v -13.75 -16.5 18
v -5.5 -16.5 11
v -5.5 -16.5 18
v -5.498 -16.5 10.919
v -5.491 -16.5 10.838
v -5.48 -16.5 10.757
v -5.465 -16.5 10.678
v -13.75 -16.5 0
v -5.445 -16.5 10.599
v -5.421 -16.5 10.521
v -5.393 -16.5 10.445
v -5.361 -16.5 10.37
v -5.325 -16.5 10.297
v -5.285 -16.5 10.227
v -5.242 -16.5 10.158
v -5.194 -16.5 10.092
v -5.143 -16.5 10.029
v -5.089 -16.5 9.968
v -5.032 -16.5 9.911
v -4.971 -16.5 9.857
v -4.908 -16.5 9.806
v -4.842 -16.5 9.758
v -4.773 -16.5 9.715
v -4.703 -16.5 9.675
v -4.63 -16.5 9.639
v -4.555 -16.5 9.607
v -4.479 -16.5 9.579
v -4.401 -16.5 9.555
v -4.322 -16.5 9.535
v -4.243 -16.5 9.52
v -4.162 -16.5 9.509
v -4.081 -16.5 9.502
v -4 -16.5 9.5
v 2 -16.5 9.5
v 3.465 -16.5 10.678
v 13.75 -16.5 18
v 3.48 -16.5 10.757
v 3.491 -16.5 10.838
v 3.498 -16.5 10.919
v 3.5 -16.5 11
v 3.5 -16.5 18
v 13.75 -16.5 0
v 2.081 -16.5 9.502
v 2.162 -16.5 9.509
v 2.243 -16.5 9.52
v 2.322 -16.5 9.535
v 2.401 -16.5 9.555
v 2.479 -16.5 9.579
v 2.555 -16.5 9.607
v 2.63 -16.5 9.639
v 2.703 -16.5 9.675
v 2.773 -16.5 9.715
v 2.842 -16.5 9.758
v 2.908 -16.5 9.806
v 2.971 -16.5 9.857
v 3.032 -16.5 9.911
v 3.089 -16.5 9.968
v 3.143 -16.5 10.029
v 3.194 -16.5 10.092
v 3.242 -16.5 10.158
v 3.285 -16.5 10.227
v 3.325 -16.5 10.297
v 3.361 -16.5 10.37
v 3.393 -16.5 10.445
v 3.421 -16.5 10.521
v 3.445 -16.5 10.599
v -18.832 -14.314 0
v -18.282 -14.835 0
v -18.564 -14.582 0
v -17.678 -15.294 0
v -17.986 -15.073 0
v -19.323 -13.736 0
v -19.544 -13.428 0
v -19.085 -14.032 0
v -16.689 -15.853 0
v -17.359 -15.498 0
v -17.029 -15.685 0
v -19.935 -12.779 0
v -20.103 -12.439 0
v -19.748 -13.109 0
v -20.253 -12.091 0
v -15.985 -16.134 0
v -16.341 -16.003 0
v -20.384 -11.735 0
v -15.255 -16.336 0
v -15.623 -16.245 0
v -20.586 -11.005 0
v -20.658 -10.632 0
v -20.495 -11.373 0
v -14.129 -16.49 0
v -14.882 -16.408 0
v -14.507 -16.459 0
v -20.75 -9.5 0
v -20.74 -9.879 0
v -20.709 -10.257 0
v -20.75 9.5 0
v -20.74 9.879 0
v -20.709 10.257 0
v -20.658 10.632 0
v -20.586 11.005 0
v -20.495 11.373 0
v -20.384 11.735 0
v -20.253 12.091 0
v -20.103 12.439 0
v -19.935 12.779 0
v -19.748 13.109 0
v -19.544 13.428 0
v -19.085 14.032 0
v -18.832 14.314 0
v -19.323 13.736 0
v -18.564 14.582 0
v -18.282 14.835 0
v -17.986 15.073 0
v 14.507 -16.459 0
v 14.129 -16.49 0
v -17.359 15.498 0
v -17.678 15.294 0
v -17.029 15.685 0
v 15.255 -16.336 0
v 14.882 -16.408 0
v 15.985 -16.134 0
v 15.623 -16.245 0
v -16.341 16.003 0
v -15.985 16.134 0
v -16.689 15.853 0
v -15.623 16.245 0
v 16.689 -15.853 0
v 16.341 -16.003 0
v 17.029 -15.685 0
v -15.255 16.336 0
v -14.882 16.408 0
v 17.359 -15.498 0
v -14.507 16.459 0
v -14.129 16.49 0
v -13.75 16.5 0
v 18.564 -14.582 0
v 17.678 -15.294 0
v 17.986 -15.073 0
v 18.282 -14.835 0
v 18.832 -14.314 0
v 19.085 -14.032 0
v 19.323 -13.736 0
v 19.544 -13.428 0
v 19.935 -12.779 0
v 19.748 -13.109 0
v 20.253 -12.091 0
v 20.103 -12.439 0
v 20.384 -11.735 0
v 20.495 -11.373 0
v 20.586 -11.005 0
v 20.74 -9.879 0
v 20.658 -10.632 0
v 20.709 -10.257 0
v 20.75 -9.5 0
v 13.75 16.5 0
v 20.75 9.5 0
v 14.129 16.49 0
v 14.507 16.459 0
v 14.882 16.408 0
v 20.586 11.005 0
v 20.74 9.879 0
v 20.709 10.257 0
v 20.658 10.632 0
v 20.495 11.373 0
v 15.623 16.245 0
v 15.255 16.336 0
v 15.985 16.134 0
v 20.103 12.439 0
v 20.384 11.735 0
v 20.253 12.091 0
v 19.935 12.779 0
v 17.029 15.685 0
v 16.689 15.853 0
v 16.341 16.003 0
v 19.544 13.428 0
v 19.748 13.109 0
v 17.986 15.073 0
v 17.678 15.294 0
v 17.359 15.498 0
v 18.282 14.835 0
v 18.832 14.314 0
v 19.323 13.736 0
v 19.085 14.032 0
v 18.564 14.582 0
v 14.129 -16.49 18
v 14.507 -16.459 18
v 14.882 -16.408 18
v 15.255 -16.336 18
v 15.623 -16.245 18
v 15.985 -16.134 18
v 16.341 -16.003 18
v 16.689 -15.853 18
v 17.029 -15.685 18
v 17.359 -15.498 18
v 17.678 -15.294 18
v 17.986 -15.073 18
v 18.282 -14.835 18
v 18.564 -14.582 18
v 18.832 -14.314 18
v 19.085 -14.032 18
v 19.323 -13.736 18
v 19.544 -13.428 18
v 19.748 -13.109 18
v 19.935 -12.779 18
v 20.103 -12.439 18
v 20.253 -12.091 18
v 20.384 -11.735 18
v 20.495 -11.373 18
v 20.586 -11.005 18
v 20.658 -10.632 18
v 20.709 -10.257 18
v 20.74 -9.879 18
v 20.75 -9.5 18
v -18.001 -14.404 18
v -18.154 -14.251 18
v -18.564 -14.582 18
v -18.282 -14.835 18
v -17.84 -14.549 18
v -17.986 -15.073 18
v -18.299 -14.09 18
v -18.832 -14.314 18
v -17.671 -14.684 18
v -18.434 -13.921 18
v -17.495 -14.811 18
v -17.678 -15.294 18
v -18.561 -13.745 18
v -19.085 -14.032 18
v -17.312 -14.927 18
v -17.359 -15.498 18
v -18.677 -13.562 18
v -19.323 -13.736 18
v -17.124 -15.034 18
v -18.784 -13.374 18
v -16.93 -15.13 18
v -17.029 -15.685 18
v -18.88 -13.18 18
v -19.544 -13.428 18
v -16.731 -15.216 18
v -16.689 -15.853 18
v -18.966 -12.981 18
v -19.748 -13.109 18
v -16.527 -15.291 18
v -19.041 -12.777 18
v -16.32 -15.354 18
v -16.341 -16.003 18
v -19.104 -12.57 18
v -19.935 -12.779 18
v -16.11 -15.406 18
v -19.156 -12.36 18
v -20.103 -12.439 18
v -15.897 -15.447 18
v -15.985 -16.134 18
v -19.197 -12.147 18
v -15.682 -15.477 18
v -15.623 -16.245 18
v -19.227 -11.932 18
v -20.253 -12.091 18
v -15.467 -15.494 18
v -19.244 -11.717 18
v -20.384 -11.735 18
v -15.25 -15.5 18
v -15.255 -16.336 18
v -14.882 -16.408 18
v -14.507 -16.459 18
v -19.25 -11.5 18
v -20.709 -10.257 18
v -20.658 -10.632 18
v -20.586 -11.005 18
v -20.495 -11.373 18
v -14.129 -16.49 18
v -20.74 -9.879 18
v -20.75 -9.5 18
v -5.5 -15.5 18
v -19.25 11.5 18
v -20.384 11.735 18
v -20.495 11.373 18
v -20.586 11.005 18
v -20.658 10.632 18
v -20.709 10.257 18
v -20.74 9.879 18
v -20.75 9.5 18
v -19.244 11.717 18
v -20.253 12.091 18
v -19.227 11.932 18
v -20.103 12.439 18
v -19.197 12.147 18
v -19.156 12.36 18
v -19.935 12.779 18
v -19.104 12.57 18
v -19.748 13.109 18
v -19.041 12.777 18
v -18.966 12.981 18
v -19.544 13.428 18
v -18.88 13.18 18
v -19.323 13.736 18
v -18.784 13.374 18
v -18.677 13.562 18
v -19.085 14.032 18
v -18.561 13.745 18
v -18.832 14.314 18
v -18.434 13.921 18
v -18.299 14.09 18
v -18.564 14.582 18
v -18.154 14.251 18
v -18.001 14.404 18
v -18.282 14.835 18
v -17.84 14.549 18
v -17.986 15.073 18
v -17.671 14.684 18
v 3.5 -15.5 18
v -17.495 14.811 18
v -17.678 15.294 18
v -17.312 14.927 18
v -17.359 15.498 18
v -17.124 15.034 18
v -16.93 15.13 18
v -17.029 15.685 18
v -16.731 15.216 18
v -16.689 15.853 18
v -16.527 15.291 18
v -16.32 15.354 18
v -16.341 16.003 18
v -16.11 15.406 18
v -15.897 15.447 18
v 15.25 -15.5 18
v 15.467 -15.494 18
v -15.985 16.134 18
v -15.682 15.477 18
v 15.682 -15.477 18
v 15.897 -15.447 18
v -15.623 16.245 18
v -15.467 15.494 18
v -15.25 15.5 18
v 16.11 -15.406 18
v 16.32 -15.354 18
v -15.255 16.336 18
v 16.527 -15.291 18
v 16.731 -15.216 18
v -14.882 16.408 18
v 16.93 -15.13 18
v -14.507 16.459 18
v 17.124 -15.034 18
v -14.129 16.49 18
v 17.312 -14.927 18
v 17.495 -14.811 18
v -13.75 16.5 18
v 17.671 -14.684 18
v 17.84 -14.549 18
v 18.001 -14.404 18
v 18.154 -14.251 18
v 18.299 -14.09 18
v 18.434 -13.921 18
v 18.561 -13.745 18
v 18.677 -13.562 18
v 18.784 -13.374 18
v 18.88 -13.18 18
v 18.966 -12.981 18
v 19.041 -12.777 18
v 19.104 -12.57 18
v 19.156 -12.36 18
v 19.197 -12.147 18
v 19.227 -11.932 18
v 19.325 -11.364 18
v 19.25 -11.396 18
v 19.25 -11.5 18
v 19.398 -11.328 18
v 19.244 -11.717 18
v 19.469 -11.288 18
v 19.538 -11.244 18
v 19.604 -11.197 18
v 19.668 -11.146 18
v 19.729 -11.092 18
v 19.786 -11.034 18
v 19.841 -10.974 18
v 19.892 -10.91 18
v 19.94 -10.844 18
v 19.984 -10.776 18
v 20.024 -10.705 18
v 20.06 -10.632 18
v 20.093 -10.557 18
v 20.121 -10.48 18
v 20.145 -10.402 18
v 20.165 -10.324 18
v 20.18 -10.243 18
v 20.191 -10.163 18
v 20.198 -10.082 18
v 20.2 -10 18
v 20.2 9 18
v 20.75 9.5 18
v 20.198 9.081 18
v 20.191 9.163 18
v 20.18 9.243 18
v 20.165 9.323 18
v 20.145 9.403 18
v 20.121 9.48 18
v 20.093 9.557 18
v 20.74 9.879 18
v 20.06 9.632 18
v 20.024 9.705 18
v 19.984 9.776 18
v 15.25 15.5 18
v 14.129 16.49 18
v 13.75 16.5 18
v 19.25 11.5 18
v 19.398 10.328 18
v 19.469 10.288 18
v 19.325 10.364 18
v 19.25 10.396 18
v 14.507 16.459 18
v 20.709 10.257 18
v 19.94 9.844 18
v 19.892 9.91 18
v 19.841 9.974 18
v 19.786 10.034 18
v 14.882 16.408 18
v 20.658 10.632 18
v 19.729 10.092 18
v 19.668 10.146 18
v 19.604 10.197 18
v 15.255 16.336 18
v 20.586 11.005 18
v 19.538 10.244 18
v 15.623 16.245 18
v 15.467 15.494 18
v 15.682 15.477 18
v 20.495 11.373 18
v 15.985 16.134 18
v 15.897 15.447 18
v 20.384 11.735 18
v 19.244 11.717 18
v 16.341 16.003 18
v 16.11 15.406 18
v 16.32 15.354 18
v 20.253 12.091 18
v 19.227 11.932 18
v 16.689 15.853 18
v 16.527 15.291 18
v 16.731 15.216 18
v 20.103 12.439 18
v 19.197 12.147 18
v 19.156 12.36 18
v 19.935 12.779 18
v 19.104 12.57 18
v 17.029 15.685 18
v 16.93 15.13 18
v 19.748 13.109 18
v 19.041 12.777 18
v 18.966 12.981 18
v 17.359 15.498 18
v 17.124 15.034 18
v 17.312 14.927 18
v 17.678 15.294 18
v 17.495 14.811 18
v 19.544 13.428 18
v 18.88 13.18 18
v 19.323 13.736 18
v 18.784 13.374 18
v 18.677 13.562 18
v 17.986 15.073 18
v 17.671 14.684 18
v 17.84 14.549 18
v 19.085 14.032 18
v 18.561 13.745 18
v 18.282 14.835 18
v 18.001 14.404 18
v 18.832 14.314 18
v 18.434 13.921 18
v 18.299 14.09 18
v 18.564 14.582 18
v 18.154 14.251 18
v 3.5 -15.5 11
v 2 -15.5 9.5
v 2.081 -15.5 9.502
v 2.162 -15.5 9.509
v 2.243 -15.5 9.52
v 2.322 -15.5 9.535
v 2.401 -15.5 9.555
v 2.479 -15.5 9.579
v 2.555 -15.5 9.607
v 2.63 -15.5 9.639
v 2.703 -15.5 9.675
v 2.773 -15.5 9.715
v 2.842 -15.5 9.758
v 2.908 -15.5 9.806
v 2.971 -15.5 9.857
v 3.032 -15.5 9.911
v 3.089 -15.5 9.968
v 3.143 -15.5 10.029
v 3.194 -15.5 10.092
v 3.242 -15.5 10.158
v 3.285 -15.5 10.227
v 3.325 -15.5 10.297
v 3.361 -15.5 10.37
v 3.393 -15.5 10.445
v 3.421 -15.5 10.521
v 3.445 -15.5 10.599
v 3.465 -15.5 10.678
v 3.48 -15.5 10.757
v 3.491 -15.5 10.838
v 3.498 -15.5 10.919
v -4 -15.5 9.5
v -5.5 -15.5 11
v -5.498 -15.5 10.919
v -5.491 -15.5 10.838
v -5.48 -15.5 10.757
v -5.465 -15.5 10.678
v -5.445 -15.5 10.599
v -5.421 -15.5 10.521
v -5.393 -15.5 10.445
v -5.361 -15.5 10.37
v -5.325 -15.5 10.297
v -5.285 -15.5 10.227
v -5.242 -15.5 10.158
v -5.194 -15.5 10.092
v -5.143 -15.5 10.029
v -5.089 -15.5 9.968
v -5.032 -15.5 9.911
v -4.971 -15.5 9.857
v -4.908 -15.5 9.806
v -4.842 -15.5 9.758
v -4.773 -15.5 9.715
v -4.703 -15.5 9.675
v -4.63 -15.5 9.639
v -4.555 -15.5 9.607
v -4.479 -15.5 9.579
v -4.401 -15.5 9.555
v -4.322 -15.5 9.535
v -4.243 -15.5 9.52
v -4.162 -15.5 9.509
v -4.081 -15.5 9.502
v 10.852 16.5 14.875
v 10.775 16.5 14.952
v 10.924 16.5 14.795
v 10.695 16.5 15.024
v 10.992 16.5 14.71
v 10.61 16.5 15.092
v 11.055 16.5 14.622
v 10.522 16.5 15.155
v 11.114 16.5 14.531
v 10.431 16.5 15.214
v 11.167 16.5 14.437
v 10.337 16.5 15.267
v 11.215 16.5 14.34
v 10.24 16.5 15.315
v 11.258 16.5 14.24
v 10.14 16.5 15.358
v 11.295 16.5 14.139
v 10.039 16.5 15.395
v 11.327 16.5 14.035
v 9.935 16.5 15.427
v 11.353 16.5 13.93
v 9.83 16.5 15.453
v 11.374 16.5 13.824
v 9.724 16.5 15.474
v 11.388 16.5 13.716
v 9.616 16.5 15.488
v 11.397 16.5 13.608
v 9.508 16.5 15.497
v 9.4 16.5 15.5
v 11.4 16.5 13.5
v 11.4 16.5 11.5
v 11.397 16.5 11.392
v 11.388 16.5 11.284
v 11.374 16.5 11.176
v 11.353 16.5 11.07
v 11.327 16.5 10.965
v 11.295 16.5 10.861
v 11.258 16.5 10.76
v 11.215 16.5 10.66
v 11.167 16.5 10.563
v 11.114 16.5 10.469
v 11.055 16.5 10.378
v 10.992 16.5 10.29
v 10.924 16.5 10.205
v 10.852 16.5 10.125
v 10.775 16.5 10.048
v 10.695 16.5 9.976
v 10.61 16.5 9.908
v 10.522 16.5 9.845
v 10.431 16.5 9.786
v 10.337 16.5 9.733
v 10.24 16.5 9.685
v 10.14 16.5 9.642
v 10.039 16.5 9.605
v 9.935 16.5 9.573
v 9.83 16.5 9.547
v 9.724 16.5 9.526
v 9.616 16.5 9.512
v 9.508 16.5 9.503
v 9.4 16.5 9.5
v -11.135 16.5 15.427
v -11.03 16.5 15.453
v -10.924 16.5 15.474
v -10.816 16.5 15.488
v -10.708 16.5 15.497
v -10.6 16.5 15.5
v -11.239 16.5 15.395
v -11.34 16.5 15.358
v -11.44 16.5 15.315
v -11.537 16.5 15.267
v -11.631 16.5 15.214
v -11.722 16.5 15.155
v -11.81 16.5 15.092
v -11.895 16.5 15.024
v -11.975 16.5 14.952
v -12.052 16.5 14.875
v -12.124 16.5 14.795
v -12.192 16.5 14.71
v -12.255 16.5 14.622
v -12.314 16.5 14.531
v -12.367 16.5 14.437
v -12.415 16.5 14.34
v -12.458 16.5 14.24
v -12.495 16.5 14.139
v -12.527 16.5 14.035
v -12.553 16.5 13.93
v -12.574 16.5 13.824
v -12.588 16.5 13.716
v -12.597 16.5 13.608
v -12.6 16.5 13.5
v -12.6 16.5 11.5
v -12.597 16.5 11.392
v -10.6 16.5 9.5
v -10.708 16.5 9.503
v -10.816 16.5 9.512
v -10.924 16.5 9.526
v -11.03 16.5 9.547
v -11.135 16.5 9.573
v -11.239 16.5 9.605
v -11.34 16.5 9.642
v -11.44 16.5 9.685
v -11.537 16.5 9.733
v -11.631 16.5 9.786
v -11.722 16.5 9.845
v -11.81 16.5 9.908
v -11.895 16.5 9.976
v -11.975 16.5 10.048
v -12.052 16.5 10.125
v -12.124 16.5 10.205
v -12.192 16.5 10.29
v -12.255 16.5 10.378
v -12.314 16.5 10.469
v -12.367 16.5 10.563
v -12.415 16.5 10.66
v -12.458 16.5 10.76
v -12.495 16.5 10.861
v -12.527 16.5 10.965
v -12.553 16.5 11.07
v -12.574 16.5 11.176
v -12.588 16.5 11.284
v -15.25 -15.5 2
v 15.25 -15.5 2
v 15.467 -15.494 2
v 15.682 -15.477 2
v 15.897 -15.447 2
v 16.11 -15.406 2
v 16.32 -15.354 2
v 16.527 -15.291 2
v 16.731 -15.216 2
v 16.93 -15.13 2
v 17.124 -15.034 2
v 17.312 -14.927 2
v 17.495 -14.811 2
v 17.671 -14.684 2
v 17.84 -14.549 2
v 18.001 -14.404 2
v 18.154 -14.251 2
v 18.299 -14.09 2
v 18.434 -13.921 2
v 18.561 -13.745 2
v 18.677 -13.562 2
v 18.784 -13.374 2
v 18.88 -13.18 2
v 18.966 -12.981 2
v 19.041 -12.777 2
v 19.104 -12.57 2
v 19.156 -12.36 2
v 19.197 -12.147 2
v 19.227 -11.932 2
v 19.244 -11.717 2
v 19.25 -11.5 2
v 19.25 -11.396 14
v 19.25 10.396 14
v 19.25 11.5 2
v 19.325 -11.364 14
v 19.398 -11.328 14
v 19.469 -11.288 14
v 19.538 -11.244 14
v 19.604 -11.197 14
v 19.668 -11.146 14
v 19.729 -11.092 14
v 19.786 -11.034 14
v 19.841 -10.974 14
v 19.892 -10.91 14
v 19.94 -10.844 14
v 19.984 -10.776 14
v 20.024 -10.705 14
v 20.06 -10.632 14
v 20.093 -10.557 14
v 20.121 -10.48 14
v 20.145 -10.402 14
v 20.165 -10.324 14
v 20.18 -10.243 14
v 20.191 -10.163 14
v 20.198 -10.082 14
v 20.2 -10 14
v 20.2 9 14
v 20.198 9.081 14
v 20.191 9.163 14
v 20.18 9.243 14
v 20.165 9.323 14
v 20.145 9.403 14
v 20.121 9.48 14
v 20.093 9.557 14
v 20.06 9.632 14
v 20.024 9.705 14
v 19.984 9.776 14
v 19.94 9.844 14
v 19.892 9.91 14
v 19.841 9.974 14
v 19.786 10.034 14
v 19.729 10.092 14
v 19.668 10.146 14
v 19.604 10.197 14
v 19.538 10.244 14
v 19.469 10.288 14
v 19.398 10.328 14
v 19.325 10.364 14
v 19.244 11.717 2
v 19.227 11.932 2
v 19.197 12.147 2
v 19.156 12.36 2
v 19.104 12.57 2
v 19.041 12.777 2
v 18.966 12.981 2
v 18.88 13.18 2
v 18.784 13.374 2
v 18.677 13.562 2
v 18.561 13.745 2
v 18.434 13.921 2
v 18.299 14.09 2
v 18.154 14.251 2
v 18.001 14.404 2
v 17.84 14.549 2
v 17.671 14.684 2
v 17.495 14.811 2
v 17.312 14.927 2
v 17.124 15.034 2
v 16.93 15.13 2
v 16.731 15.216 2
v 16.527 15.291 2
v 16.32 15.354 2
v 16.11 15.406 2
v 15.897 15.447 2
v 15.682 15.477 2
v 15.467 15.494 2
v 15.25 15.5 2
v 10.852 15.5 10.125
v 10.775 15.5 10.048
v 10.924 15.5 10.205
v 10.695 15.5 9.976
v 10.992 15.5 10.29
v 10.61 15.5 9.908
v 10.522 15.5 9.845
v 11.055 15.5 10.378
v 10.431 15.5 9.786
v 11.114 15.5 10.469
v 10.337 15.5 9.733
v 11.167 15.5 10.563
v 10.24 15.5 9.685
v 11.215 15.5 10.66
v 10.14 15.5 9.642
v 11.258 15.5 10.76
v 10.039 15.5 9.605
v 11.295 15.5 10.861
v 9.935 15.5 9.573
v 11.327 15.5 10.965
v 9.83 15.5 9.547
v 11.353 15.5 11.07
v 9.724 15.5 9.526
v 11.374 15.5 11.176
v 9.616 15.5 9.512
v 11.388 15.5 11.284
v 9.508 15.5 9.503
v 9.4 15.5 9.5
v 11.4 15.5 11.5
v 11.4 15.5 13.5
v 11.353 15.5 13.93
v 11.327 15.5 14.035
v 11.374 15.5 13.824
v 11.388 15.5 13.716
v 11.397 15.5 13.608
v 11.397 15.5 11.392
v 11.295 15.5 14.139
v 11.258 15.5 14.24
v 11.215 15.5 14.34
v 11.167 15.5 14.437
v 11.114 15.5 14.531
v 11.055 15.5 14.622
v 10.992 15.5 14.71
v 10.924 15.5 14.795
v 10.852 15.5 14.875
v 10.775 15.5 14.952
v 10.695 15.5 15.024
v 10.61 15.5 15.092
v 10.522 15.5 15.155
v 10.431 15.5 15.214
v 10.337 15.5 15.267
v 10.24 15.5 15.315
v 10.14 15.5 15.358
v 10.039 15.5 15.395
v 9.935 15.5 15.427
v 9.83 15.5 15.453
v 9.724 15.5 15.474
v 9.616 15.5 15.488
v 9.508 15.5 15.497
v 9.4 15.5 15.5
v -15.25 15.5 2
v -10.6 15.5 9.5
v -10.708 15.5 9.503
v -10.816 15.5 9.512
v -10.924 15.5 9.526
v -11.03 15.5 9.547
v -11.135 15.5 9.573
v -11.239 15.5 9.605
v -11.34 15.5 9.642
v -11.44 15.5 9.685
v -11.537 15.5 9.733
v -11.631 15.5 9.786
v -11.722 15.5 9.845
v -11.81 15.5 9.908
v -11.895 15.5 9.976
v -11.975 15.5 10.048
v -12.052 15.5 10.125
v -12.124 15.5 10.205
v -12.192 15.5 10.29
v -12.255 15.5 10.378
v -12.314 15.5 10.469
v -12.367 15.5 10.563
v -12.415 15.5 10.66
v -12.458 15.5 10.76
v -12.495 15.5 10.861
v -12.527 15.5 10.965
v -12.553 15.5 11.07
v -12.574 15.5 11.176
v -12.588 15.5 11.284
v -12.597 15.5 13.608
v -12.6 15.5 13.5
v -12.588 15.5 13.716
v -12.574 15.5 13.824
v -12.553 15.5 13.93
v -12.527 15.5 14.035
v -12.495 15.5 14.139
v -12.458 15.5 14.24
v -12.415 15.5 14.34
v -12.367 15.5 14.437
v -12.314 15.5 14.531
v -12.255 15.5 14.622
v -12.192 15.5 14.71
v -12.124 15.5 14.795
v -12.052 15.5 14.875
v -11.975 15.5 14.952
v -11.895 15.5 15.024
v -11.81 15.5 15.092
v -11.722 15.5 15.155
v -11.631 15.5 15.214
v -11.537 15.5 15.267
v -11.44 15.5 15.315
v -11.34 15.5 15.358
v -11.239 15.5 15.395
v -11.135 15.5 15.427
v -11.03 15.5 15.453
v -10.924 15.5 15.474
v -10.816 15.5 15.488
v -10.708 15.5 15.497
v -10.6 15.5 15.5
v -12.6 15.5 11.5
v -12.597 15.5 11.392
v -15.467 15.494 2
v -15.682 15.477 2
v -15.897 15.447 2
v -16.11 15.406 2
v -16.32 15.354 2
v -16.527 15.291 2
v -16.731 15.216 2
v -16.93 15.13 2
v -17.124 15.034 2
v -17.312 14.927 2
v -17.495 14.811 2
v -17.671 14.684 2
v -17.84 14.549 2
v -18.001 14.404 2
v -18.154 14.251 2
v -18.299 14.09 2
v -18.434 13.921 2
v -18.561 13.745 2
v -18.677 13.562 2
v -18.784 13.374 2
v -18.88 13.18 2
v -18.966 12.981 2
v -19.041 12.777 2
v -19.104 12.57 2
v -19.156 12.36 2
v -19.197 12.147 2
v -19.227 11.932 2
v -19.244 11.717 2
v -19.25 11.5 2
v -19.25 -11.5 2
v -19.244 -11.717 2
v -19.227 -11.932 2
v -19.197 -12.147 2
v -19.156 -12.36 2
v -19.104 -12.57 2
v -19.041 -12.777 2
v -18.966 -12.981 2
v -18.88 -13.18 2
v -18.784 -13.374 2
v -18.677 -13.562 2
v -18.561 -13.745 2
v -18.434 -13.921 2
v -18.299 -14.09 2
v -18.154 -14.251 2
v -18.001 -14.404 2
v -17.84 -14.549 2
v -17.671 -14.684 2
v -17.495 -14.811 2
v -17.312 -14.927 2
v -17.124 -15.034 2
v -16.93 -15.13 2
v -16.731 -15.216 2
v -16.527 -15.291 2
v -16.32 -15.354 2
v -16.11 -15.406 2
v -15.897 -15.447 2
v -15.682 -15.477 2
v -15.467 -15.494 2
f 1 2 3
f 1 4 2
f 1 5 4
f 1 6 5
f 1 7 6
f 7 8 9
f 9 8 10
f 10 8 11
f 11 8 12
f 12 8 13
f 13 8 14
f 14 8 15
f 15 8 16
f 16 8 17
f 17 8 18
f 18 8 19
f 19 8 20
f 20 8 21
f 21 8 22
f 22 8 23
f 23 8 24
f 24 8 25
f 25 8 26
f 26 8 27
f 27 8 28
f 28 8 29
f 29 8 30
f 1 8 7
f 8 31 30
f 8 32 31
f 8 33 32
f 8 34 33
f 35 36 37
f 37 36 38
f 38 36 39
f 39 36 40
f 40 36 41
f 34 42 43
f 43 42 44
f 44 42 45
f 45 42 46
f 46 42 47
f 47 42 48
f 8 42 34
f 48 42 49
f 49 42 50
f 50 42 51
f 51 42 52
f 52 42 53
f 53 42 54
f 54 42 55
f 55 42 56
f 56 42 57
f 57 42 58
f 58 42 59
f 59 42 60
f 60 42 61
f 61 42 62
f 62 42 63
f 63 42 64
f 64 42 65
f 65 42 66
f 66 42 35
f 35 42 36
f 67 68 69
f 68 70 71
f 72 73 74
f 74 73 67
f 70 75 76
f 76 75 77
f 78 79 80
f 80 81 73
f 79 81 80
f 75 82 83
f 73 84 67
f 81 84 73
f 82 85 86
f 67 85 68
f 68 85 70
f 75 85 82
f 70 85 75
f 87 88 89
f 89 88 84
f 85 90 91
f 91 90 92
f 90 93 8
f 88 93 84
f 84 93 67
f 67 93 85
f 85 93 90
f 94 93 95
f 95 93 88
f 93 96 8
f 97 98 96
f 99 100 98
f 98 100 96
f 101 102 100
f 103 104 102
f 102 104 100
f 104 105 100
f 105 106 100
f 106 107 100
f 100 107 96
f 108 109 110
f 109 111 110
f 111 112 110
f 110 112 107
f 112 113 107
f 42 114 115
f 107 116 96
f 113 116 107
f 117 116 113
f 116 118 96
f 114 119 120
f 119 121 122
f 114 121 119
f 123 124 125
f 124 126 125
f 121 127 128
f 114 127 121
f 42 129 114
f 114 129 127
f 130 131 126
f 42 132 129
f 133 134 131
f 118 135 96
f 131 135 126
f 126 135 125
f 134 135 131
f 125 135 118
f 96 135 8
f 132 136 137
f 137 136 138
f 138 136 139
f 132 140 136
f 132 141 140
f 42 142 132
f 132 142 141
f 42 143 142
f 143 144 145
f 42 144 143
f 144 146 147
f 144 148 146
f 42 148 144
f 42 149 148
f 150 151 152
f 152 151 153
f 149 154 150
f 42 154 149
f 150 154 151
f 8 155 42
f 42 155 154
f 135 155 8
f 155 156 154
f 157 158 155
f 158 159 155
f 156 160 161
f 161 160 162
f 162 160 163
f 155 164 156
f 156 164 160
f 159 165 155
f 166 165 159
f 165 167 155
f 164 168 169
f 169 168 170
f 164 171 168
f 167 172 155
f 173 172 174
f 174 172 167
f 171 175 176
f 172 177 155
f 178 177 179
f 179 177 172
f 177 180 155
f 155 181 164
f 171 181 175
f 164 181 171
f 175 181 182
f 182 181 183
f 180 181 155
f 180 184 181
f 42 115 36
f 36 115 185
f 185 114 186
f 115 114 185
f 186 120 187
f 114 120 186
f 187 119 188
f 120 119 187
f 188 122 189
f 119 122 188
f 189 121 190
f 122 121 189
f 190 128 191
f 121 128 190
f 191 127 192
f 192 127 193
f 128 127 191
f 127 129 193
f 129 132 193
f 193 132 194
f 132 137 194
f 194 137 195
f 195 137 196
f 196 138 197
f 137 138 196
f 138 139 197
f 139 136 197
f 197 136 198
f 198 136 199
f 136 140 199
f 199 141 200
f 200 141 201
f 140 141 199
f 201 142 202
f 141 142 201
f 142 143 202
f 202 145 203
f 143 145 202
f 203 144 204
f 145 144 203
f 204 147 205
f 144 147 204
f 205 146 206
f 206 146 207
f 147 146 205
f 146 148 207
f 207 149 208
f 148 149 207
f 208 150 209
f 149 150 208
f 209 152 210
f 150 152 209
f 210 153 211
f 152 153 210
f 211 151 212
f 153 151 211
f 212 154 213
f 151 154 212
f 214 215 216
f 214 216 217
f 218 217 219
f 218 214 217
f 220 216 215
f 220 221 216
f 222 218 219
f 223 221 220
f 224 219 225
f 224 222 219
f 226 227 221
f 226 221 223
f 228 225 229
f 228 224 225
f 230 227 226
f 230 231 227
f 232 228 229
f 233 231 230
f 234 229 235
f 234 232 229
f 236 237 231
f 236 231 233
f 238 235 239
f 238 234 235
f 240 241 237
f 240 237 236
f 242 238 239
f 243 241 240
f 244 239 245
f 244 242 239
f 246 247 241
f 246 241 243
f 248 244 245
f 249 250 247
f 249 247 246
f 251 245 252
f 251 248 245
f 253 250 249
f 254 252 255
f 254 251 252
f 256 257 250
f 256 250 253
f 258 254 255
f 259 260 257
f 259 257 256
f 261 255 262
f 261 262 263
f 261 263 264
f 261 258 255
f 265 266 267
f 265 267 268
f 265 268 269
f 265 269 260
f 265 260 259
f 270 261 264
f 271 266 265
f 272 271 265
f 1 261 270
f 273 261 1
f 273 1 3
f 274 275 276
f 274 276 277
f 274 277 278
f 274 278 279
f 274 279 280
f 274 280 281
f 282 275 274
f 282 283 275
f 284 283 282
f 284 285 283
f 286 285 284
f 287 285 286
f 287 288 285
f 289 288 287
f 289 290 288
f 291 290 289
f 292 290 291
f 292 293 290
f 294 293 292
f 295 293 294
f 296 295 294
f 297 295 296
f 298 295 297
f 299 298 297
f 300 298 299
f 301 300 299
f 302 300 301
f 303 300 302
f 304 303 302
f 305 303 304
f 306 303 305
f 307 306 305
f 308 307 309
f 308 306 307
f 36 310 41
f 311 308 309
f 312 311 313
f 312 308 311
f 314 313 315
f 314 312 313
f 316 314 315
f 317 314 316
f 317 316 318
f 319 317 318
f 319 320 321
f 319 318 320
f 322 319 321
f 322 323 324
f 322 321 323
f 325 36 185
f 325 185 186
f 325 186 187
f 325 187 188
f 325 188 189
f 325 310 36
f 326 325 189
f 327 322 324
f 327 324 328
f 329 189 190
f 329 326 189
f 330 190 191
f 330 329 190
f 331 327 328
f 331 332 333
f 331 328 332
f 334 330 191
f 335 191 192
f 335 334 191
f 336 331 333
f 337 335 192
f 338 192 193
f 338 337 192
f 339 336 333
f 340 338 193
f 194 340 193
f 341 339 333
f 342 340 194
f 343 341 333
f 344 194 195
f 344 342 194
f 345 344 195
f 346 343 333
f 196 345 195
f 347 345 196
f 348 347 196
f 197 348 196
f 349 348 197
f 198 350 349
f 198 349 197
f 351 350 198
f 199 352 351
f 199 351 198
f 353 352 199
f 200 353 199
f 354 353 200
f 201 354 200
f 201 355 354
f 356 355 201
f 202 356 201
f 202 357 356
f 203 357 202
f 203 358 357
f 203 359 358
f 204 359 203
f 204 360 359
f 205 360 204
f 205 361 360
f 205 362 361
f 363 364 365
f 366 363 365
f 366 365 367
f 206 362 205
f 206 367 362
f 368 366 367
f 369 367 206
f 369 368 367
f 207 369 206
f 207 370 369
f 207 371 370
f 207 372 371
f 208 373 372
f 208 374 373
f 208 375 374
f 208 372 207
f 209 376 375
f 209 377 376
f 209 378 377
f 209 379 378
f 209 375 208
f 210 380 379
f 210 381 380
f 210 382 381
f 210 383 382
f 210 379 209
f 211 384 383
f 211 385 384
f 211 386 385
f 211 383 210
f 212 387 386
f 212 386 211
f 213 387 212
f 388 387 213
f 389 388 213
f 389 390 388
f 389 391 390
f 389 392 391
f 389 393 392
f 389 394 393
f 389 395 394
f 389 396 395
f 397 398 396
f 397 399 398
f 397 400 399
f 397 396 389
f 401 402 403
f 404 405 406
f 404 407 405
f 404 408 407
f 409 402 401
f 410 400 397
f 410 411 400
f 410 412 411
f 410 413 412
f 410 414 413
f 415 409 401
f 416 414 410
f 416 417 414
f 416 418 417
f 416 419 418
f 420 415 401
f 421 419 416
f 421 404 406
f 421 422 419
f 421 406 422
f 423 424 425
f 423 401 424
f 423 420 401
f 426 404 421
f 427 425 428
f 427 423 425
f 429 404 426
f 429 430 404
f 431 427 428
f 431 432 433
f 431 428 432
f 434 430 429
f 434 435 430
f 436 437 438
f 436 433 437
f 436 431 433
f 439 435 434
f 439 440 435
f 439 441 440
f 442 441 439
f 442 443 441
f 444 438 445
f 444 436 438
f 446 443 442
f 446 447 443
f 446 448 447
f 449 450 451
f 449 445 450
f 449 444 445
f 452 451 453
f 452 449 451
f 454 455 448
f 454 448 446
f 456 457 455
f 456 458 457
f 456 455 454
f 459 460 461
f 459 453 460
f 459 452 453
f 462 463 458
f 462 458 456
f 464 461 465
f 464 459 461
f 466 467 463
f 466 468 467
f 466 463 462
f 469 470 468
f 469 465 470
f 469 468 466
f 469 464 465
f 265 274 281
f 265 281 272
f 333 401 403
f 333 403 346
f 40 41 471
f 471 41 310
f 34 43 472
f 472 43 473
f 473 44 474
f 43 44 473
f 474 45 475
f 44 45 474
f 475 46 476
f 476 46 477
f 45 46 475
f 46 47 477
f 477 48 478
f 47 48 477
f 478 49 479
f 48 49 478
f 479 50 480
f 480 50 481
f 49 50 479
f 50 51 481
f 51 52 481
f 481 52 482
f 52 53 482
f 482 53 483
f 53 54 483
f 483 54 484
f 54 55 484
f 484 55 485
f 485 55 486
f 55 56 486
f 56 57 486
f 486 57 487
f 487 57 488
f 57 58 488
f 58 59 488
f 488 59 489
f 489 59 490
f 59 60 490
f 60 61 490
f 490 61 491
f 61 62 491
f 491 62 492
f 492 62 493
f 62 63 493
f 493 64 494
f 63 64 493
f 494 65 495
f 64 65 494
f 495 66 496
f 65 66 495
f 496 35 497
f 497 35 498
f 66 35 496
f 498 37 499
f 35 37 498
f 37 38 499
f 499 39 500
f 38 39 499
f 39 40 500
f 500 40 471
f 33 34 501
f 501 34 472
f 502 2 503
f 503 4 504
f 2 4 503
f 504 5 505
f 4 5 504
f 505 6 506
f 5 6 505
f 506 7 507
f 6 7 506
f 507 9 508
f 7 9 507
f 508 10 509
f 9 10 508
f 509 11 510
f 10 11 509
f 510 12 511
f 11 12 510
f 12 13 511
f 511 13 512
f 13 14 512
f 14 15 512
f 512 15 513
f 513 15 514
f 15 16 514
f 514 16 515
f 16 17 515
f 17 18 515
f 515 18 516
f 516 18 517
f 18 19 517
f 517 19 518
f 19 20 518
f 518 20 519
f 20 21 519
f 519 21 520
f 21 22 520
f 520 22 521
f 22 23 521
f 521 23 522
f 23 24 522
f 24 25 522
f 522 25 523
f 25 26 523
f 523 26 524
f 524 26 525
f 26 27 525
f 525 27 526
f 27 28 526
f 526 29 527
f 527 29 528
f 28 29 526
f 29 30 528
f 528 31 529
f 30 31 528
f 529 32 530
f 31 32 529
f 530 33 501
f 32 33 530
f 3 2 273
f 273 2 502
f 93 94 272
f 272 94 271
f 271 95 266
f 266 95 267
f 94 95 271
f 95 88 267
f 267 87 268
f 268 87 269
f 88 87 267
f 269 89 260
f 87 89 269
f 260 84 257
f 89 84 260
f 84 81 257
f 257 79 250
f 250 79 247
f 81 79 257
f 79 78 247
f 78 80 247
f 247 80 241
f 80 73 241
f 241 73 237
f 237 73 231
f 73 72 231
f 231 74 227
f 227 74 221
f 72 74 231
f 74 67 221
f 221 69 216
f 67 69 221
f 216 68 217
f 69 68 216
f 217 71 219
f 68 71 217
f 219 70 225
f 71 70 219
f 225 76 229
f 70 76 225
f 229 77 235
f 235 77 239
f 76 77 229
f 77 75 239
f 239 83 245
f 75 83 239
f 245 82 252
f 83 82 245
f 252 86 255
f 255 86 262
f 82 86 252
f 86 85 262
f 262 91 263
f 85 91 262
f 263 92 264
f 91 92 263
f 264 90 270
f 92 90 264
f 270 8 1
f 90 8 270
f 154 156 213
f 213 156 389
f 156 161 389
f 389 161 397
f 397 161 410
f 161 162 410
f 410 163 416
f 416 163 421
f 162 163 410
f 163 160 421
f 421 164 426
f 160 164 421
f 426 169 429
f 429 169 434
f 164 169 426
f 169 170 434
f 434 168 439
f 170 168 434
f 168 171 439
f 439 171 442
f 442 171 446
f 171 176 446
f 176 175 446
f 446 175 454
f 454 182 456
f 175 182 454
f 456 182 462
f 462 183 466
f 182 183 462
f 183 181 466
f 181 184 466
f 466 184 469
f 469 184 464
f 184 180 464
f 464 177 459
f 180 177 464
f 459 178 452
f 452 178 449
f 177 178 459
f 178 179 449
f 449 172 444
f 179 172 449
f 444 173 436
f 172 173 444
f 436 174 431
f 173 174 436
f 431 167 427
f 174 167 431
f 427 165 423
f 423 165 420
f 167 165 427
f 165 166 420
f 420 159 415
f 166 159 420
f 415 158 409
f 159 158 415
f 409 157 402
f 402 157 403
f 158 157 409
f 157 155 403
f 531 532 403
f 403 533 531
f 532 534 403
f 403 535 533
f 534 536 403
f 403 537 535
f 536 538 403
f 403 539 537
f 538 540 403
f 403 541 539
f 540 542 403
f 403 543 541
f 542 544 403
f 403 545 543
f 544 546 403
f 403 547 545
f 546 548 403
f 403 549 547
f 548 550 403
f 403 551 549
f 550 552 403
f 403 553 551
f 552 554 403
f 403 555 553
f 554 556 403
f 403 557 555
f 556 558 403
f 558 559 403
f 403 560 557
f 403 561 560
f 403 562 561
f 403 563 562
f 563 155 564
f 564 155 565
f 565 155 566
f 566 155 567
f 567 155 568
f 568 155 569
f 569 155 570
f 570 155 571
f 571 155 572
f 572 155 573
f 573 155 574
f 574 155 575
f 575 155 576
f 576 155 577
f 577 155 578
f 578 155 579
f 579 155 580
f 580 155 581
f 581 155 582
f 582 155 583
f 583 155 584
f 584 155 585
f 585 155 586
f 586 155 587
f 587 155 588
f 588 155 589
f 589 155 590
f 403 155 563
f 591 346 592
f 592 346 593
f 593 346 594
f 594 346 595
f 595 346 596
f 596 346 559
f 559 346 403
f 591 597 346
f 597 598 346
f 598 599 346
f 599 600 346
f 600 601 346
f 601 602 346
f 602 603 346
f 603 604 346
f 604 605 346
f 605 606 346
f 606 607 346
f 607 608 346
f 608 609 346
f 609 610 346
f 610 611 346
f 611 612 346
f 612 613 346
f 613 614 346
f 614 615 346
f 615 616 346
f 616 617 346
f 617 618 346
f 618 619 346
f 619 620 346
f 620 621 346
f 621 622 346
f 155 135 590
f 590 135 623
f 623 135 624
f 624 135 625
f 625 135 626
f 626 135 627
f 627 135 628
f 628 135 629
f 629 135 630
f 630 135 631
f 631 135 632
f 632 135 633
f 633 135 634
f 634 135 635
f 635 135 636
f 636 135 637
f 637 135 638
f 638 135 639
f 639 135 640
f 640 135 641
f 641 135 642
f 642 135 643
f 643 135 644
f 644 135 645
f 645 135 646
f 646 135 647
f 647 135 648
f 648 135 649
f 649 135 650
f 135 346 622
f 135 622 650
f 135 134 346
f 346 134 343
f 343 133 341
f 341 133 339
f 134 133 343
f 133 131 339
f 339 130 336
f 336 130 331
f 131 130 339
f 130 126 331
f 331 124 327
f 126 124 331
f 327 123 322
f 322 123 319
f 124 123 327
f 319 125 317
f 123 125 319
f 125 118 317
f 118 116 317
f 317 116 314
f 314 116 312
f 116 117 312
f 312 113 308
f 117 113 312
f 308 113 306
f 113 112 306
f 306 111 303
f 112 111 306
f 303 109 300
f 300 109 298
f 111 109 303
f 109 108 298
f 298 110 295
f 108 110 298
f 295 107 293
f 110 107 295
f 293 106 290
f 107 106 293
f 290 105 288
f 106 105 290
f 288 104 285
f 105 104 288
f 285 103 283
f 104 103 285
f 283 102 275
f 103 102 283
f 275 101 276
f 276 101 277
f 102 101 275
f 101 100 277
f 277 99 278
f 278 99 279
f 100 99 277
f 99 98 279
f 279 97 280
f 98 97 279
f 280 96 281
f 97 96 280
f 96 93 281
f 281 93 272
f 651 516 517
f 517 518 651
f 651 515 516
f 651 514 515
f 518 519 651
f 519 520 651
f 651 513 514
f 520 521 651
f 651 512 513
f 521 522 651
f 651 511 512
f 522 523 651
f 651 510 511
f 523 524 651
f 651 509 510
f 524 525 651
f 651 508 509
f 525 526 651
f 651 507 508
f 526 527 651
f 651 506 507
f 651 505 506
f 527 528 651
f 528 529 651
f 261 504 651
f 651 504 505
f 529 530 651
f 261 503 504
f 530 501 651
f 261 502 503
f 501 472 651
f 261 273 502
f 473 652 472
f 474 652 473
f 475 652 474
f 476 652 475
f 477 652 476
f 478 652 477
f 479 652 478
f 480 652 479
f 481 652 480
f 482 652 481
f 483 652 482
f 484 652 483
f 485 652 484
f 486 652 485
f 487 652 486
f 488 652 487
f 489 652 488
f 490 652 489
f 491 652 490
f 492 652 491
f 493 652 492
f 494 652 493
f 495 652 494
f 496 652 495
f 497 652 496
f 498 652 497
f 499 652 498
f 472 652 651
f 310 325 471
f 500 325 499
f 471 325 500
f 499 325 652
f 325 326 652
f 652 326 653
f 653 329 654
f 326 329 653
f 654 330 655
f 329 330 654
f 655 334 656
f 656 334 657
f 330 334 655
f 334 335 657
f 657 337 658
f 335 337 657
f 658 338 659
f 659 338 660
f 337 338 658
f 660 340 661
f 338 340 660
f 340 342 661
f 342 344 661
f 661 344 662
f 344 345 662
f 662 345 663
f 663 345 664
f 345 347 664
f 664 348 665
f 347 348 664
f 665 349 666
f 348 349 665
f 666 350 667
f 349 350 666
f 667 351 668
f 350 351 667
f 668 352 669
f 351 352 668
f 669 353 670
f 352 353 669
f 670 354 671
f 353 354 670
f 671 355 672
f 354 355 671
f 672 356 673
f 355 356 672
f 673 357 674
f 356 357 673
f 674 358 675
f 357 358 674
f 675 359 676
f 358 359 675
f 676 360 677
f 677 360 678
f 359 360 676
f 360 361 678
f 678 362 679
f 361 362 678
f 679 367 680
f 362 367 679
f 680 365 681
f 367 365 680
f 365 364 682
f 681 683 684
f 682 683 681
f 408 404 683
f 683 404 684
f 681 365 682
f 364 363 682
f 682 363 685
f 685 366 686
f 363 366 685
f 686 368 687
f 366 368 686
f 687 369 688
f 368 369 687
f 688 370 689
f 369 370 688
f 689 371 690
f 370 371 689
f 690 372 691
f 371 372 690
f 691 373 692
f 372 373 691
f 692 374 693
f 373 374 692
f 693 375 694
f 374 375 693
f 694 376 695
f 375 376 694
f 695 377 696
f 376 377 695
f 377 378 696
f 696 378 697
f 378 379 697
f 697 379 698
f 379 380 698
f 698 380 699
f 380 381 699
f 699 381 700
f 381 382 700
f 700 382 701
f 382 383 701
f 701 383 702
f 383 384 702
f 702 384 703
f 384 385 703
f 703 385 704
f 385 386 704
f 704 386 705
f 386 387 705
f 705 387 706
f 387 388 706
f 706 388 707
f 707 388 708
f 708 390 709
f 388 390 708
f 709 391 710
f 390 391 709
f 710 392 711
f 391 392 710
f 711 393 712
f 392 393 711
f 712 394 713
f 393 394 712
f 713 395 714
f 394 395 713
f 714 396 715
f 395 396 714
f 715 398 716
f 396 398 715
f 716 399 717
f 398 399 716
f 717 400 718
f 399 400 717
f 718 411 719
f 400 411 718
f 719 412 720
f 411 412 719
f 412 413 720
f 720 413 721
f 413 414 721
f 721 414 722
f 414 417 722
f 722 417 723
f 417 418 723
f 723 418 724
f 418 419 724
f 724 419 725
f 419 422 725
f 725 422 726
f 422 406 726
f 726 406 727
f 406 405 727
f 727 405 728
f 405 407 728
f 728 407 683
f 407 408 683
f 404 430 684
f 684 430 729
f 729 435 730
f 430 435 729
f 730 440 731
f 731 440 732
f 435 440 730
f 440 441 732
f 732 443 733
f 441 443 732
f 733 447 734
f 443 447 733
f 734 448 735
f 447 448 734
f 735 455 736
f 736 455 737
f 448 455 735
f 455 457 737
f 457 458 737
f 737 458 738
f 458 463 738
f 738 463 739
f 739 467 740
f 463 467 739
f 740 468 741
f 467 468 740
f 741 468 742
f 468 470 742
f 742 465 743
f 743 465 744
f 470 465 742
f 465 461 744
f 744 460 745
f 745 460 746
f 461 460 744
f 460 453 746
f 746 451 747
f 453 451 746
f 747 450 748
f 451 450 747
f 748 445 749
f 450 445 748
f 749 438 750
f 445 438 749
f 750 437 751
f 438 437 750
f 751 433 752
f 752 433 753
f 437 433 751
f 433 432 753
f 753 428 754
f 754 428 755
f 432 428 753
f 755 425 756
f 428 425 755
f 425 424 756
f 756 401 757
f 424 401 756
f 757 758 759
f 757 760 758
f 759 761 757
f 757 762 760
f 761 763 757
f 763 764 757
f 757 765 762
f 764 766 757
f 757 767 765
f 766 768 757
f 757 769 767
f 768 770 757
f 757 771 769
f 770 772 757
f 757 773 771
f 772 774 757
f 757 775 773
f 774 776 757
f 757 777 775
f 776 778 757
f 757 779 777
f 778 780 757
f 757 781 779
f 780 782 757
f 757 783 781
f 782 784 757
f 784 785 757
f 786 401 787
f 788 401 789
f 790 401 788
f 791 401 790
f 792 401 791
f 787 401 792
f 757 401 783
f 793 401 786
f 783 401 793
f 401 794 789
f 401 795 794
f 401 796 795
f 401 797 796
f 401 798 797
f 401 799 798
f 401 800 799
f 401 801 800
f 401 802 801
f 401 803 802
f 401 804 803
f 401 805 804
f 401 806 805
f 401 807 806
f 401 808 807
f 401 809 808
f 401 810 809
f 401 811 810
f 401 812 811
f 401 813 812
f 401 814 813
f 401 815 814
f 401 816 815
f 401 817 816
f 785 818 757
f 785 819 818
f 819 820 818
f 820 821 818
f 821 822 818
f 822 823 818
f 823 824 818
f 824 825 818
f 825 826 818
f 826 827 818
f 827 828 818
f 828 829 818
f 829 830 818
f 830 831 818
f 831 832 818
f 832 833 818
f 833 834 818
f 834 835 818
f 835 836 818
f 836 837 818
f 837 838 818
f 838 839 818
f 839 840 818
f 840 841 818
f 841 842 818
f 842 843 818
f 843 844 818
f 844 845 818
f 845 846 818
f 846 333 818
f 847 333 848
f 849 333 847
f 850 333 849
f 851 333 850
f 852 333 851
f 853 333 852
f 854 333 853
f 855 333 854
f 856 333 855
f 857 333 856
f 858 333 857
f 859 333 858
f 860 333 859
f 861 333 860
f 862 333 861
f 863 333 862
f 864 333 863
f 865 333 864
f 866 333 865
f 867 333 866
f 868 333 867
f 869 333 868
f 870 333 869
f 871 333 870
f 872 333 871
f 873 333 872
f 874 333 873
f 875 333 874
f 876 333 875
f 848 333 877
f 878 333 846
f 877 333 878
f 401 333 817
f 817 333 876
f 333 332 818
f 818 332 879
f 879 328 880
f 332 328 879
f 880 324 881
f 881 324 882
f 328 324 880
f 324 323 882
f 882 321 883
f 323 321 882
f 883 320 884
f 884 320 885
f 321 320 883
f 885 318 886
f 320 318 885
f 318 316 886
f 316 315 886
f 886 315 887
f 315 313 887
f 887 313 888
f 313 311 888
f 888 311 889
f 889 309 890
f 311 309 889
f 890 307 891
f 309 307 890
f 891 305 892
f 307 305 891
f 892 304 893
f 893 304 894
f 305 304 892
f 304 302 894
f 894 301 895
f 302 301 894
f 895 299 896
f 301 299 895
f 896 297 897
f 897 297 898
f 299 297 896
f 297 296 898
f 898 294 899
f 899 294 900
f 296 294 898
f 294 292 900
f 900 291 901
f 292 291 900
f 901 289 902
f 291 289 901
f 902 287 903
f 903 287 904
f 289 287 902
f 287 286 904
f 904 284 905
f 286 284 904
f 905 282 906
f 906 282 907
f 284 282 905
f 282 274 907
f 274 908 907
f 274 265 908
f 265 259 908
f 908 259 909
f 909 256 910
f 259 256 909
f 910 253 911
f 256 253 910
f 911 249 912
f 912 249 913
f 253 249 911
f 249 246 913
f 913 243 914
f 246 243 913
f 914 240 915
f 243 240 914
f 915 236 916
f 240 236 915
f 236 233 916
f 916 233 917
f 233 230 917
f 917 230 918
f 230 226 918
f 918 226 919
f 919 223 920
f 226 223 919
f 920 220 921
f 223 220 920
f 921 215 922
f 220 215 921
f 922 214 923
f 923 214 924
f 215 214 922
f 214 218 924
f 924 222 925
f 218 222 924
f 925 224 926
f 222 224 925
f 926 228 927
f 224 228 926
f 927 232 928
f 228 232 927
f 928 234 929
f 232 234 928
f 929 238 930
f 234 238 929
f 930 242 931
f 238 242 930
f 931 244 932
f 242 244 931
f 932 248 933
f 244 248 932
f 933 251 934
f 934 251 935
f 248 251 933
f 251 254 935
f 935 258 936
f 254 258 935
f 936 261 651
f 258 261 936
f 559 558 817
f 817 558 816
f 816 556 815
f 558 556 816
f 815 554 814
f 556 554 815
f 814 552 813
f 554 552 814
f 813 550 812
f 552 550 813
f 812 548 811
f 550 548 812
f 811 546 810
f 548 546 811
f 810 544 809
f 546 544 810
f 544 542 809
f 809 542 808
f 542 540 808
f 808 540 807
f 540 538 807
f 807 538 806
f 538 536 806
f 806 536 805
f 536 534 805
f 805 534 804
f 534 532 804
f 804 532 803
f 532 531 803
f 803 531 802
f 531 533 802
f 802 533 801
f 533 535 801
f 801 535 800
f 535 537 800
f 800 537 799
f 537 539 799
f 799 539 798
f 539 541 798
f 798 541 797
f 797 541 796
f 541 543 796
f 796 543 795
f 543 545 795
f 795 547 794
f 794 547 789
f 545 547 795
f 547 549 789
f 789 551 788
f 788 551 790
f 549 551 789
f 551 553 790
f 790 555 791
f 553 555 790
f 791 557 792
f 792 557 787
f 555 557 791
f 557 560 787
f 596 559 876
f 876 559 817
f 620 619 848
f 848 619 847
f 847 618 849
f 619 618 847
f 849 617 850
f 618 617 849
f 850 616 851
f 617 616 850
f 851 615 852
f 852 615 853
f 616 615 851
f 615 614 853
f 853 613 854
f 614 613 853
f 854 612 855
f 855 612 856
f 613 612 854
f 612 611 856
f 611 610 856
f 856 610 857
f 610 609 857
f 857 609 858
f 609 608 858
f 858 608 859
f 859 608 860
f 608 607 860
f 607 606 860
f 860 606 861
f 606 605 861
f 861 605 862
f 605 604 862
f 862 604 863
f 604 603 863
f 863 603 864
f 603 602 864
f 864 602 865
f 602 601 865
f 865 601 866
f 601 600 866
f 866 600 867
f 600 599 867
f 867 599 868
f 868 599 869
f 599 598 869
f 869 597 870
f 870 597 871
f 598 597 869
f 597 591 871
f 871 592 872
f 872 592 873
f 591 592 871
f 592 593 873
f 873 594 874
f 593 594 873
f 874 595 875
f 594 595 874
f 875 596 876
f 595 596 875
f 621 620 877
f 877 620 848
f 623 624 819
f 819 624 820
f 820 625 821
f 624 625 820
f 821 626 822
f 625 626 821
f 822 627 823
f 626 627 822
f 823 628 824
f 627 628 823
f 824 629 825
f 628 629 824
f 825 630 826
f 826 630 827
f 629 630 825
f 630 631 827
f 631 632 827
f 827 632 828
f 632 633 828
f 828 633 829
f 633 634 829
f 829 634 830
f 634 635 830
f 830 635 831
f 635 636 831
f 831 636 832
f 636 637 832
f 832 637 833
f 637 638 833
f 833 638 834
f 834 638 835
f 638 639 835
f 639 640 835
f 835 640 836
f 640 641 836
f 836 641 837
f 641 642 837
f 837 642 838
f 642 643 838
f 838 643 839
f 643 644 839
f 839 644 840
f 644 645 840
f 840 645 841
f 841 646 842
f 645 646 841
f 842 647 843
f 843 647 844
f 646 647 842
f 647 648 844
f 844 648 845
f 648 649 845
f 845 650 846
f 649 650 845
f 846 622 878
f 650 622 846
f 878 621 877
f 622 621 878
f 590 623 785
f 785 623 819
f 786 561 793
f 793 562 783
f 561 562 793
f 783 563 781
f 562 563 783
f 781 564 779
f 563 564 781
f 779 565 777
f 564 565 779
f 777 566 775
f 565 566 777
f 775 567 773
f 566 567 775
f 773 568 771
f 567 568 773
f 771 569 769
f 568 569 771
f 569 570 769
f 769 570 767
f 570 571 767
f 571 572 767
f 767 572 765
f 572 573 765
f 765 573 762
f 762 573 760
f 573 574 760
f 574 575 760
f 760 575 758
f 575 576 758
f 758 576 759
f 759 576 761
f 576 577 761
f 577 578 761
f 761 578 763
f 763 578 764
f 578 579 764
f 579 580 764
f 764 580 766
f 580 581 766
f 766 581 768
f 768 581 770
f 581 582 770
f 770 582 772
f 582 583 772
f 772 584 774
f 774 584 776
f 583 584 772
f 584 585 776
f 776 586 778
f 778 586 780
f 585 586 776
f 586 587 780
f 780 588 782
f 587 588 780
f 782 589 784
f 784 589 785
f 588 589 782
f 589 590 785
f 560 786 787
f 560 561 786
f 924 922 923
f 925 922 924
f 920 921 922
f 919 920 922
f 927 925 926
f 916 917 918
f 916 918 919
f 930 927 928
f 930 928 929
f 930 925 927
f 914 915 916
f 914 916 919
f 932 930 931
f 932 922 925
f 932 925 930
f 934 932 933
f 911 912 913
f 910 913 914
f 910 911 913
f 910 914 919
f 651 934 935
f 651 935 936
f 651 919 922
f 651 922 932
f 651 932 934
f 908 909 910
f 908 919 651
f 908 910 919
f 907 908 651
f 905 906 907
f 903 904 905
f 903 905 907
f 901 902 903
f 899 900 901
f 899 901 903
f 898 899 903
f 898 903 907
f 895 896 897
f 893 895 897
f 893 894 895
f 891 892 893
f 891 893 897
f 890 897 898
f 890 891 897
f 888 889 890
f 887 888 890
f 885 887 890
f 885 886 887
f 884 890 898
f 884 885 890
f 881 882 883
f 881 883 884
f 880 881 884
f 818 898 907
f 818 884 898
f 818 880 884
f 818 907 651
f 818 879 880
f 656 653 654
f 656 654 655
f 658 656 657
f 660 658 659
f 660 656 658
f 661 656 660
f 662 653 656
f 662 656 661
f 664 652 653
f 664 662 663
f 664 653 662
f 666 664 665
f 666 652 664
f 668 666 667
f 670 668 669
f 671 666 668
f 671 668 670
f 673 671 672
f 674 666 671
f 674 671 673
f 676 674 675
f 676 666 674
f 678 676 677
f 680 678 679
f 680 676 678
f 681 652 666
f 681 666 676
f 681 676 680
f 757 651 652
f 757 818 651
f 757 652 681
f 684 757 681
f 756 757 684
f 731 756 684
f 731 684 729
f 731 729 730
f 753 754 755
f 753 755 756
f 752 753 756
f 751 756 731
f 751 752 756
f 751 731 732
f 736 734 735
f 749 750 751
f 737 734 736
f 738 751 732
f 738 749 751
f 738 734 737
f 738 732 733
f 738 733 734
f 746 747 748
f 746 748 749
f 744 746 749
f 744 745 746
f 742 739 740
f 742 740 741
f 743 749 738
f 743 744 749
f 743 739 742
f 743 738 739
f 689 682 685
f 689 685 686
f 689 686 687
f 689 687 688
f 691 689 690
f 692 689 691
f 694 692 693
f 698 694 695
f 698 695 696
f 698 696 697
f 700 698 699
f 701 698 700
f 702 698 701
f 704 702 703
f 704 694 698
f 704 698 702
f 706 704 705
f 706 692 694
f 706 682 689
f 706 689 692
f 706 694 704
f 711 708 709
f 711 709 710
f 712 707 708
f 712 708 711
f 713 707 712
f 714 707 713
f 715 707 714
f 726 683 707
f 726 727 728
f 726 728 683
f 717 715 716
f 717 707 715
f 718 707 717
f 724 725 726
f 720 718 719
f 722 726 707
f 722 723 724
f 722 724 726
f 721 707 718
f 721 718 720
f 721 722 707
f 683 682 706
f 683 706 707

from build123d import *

# Parameters (mm, degrees)
PAD_DEPTH       = 18
POCKET_DEPTH    = 16
POCKET001_DEPTH = 5
POCKET002_DEPTH = 5
POCKET003_DEPTH = 4


with BuildPart() as part:
    # Sketch → Pad (new body)
    with BuildSketch(Plane.XY):
        with BuildLine():
            Line((-13.75, -16.5), (13.75, -16.5))
            ThreePointArc((13.75, -16.5), (18.699747, -14.449747), (20.75, -9.5))
            Line((20.75, -9.5), (20.75, 9.5))
            ThreePointArc((20.75, 9.5), (18.699747, 14.449747), (13.75, 16.5))
            Line((13.75, 16.5), (-13.75, 16.5))
            ThreePointArc((-13.75, 16.5), (-18.699747, 14.449747), (-20.75, 9.5))
            Line((-20.75, 9.5), (-20.75, -9.5))
            ThreePointArc((-20.75, -9.5), (-18.699747, -14.449747), (-13.75, -16.5))
        make_face()
    extrude(amount=PAD_DEPTH)

    # Sketch001 (on Face10 of Pad) → Pocket (cut)
    with BuildSketch(Plane.XY.offset(18)):
        with BuildLine():
            Line((-19.25, 11.5), (-19.25, -11.5))
            ThreePointArc((-19.25, -11.5), (-18.078427, -14.328427), (-15.25, -15.5))
            Line((-15.25, -15.5), (15.25, -15.5))
            ThreePointArc((15.25, -15.5), (18.078427, -14.328427), (19.25, -11.5))
            Line((19.25, -11.5), (19.25, 11.5))
            ThreePointArc((19.25, 11.5), (18.078427, 14.328427), (15.25, 15.5))
            Line((15.25, 15.5), (-15.25, 15.5))
            ThreePointArc((-15.25, 15.5), (-18.078427, 14.328427), (-19.25, 11.5))
        make_face()
    extrude(amount=-POCKET_DEPTH, mode=Mode.SUBTRACT)

    # Sketch002 (on Face1 of Pocket) → Pocket001 (cut)
    with BuildSketch(Plane.XZ.offset(16.5)):
        with BuildLine():
            Line((-5.5, 18), (-5.5, 11))
            ThreePointArc((-5.5, 11), (-5.06066, 9.93934), (-4, 9.5))
            Line((-4, 9.5), (2, 9.5))
            ThreePointArc((2, 9.5), (3.06066, 9.93934), (3.5, 11))
            Line((3.5, 11), (3.5, 18))
            ThreePointArc((3.5, 18), (3.06066, 19.06066), (2, 19.5))
            Line((2, 19.5), (-4, 19.5))
            ThreePointArc((-4, 19.5), (-5.06066, 19.06066), (-5.5, 18))
        make_face()
    extrude(amount=-POCKET001_DEPTH, mode=Mode.SUBTRACT)

    # Sketch003 (on Face13 of Pocket001) → Pocket002 (cut)
    with BuildSketch(Plane(origin=(0, 16.5, 0), x_dir=(-1, 0, 0), z_dir=(0, 1, 0))):
        with BuildLine():
            Line((-11.4, 13.5), (-11.4, 11.5))
            ThreePointArc((-11.4, 11.5), (-10.814214, 10.085786), (-9.4, 9.5))
            Line((-9.4, 9.5), (10.6, 9.5))
            ThreePointArc((10.6, 9.5), (12.014214, 10.085786), (12.6, 11.5))
            Line((12.6, 11.5), (12.6, 13.5))
            ThreePointArc((12.6, 13.5), (12.014214, 14.914214), (10.6, 15.5))
            Line((10.6, 15.5), (-9.4, 15.5))
            ThreePointArc((-9.4, 15.5), (-10.814214, 14.914214), (-11.4, 13.5))
        make_face()
    extrude(amount=-POCKET002_DEPTH, mode=Mode.SUBTRACT)

    # Sketch004 (on Face4 of Pocket002) → Pocket003 (cut)
    with BuildSketch(Plane.XY.offset(18)):
        with BuildLine():
            Line((15.2, 9), (15.2, -10))
            ThreePointArc((15.2, -10), (15.63934, -11.06066), (16.7, -11.5))
            Line((16.7, -11.5), (18.7, -11.5))
            ThreePointArc((18.7, -11.5), (19.76066, -11.06066), (20.2, -10))
            Line((20.2, -10), (20.2, 9))
            ThreePointArc((20.2, 9), (19.76066, 10.06066), (18.7, 10.5))
            Line((18.7, 10.5), (16.7, 10.5))
            ThreePointArc((16.7, 10.5), (15.63934, 10.06066), (15.2, 9))
        make_face()
    extrude(amount=-POCKET003_DEPTH, mode=Mode.SUBTRACT)


solid = part.part
